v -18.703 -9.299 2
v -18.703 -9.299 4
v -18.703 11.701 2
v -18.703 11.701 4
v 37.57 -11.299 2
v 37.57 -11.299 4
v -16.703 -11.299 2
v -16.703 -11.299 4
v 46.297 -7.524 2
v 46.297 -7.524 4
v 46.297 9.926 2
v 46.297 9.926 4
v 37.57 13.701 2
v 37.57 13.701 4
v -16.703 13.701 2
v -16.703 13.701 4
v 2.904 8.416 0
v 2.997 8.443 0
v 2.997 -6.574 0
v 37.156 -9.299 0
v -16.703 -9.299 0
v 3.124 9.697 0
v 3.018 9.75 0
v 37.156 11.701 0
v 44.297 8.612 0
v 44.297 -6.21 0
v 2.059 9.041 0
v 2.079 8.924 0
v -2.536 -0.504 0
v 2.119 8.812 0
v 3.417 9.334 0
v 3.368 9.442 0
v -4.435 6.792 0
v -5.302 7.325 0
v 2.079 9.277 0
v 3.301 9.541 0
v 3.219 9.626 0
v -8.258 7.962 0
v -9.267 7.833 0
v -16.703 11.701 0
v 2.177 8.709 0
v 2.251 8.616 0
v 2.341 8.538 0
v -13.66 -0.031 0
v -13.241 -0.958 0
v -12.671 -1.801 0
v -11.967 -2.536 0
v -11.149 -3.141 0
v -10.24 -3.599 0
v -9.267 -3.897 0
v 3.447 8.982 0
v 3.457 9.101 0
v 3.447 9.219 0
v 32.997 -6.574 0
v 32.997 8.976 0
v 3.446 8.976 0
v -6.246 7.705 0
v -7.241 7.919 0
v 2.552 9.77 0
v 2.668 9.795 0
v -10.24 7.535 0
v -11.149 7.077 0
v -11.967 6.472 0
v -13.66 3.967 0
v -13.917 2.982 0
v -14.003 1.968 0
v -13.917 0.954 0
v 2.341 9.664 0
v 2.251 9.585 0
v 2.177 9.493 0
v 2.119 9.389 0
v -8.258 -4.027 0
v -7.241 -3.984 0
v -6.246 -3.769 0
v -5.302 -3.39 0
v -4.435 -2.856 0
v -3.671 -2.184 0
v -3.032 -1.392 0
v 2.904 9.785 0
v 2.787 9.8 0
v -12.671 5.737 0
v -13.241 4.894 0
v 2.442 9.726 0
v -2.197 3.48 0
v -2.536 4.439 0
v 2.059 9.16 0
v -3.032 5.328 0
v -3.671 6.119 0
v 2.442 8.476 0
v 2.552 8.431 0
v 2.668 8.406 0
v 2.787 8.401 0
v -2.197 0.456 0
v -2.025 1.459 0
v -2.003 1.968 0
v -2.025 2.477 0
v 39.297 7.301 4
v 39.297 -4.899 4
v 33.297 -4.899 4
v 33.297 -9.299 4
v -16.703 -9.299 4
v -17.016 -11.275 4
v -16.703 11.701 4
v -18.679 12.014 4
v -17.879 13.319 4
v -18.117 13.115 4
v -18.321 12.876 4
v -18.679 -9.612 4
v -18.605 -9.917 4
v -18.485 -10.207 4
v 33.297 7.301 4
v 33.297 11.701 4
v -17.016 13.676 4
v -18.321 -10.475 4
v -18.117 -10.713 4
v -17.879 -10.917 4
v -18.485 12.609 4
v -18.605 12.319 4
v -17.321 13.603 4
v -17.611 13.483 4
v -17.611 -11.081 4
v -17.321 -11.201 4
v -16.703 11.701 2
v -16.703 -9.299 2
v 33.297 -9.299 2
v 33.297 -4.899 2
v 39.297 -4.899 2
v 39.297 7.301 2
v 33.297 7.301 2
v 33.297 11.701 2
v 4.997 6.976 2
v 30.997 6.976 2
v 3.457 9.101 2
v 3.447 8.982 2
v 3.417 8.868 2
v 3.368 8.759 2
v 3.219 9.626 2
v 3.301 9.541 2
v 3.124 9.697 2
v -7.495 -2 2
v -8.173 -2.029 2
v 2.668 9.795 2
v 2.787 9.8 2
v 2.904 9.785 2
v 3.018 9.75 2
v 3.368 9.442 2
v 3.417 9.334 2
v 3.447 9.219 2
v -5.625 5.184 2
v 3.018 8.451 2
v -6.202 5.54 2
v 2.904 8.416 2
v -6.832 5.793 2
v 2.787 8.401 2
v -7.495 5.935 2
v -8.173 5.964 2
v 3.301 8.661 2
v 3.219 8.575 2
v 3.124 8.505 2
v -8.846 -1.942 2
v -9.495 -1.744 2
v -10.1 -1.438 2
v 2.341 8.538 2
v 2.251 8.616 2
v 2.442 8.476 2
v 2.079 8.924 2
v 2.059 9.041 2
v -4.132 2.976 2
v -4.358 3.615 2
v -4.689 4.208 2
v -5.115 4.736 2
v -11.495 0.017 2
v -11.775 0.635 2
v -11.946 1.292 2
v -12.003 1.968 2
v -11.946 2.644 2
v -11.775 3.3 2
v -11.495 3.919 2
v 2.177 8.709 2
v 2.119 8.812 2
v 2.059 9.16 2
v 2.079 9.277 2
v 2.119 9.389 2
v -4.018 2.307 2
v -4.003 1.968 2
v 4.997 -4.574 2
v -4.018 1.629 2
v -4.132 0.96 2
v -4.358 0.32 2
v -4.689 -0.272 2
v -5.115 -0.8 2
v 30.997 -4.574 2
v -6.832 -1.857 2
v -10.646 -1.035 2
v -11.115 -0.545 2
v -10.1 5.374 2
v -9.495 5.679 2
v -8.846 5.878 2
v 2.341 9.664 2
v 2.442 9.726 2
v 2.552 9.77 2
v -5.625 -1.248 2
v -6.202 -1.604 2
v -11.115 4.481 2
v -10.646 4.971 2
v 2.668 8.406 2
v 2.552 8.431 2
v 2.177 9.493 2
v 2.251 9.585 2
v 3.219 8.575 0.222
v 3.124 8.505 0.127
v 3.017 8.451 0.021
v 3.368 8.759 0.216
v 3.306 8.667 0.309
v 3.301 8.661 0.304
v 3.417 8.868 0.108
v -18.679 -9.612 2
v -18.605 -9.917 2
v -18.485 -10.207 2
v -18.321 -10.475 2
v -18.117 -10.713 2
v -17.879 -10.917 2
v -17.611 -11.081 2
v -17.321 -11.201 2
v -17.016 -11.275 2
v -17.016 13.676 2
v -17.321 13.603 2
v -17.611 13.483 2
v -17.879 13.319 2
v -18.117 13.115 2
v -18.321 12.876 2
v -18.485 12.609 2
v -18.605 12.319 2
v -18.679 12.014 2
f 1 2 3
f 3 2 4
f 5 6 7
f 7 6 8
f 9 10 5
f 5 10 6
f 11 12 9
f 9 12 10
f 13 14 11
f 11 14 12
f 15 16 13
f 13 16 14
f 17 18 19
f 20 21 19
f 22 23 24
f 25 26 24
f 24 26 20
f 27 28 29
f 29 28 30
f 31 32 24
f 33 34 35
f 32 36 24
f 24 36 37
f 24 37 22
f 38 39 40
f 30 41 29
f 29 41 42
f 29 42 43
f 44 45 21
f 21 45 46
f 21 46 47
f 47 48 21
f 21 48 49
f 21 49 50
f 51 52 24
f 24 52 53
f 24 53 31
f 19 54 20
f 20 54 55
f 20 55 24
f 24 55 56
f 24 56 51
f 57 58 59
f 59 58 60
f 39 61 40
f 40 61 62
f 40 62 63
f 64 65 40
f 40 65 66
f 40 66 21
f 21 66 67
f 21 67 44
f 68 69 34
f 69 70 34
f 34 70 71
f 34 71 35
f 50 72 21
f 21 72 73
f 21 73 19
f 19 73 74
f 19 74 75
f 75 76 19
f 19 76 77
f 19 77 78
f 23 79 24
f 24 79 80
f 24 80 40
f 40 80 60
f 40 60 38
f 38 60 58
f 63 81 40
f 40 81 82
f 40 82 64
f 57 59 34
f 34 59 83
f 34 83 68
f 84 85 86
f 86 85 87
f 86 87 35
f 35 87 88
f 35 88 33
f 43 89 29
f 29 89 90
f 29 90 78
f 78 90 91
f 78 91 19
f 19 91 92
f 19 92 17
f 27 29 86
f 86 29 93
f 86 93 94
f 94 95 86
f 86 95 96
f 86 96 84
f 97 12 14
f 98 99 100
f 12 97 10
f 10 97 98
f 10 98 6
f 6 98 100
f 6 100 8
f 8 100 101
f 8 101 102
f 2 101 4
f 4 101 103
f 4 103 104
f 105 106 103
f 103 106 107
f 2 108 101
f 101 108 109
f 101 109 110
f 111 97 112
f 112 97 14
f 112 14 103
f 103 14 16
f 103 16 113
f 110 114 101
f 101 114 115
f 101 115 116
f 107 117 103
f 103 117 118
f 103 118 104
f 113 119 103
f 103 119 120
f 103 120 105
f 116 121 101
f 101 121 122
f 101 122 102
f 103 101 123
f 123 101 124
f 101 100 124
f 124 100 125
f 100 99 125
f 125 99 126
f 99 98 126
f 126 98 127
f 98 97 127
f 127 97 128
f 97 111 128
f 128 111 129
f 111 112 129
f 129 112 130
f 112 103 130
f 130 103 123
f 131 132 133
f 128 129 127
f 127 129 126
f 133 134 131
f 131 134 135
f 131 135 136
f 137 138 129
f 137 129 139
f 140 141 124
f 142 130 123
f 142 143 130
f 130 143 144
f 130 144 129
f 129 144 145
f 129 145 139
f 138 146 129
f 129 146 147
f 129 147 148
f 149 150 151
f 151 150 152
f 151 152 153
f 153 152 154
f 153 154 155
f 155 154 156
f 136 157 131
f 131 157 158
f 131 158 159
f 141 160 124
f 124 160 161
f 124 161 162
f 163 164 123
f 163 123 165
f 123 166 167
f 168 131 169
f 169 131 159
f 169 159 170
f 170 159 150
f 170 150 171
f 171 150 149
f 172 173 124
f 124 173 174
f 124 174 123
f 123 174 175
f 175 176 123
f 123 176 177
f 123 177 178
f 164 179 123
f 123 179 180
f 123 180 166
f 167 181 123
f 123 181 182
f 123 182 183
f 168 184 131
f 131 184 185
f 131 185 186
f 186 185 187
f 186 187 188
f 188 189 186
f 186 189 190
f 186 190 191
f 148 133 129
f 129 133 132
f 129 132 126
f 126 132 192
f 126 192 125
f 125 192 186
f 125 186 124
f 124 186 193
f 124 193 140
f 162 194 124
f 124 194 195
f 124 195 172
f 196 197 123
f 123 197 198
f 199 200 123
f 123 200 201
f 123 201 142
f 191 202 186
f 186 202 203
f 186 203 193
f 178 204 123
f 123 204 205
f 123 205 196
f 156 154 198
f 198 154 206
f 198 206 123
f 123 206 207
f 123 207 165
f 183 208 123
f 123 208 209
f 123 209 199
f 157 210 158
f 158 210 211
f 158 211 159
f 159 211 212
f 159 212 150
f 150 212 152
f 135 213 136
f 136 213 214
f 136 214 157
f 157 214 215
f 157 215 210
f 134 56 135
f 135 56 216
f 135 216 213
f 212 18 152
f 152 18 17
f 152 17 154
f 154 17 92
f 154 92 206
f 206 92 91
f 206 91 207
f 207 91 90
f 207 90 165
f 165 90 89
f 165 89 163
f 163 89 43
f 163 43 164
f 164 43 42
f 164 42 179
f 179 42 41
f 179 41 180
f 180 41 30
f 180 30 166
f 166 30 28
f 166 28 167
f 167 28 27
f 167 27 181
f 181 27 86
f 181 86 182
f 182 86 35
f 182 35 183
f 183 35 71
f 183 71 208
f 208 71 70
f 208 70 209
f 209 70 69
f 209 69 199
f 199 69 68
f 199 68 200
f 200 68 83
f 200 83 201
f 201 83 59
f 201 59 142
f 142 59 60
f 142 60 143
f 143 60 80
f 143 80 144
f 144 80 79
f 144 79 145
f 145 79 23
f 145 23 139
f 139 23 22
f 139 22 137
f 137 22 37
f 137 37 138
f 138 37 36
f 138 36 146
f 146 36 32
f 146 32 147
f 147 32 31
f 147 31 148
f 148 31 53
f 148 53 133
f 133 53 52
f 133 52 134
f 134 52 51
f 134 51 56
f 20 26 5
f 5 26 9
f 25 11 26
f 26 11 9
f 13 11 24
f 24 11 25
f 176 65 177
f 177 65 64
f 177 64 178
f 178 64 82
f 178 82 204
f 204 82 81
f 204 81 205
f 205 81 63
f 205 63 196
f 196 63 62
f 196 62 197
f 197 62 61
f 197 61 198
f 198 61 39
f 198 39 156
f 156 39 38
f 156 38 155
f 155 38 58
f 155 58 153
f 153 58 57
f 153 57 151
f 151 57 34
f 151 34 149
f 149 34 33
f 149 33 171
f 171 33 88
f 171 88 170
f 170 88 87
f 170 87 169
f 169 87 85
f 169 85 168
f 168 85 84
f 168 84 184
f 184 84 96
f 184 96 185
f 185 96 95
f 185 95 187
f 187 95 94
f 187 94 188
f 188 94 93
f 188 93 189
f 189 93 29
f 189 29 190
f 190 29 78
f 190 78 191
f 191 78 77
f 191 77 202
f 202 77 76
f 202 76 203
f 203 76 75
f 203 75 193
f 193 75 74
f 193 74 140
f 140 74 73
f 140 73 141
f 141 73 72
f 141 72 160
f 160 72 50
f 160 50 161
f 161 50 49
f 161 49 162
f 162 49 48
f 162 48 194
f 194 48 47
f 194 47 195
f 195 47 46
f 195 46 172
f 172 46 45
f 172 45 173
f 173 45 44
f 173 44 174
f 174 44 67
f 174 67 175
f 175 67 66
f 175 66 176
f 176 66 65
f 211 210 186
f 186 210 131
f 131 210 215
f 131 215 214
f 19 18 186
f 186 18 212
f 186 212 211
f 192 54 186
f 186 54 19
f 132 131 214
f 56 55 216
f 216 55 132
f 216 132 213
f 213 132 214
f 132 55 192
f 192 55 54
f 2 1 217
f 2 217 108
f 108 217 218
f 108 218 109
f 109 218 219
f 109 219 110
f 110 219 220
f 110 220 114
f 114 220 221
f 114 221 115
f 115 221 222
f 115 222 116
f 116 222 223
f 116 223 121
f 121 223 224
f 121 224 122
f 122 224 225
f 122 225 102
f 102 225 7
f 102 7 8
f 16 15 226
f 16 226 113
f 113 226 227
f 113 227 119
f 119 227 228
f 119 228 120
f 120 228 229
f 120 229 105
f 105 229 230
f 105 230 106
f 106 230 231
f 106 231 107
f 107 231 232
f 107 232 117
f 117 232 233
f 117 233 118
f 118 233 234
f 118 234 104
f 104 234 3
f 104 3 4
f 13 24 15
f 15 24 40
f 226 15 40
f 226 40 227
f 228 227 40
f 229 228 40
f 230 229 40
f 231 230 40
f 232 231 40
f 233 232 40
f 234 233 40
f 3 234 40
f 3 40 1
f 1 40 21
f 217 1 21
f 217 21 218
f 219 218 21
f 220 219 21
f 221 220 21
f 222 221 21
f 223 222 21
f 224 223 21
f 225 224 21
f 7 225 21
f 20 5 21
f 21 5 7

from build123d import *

# Parameters (mm, degrees)
EXTRUDE_1_DEPTH     = 2
EXTRUDE_2_DEPTH     = 2
SKETCH_4_R          = 4
SKETCH_4_R_2        = 0.7
SKETCH_4_W          = 26
SKETCH_4_H          = 11.55
CUT_EXTRUDE_1_DEPTH = 49.322997027
CHAMFER_3_SIZE      = 2
FILLET_2_R          = 2
CHAMFER_4_SIZE      = 2


# Some blends are built 0.0001 mm under size
with BuildPart() as part:
    # Эскиз1 → Бобышка-Вытянуть1 (new body)
    with BuildSketch(Plane.XY):
        Polygon((46.296875, 9.92578125), (37.5703125, 13.70078125), (-18.703125, 13.70078125), (-18.703125, -11.29921875), (37.5703125, -11.29921875), (46.296875, -7.52421875), align=None)
    extrude(amount=EXTRUDE_1_DEPTH)

    # Эскиз2 → Бобышка-Вытянуть2 (add)
    with BuildSketch(Plane.XY.offset(2)):
        Polygon((-18.703125, -11.29921875), (37.5703125, -11.29921875), (46.296875, -7.52421875), (46.296875, 9.92578125), (37.5703125, 13.70078125), (-18.703125, 13.70078125), align=None)
        Polygon((-16.703125, 11.70078125), (33.296875, 11.70078125), (33.296875, 7.30078125), (39.296875, 7.30078125), (39.296875, -4.89921875), (33.296875, -4.89921875), (33.296875, -9.29921875), (-16.703125, -9.29921875), align=None, mode=Mode.SUBTRACT)
    extrude(amount=EXTRUDE_2_DEPTH)

    # Эскиз4 → Вырез-Вытянуть1 (cut, through all)
    with BuildSketch(Plane.XY.offset(2)):
        with Locations((-8.003125, 1.96785345)):
            Circle(SKETCH_4_R)
        with Locations((2.756875, 9.10078125)):
            Circle(SKETCH_4_R_2)
        with Locations((17.996875, 1.20078125)):
            Rectangle(SKETCH_4_W, SKETCH_4_H)
    extrude(amount=-CUT_EXTRUDE_1_DEPTH, mode=Mode.SUBTRACT)

    # Фаска3
    # the kernel refuses this chamfer: 2 mm, written as the material it takes off along each edge
    with BuildSketch(Plane(origin=(51.017483297, 7.883706112, 0), x_dir=(0.010916712185249174, 0.025235859914990173, 0.9996219169112968), z_dir=(-0.9178052503070296, 0.3970308835705994, 0))) as chamfer_3_piece_1:
        Polygon((CHAMFER_3_SIZE * 0.999621916911, -CHAMFER_3_SIZE * 0.0274958766106), (-CHAMFER_3_SIZE * 0.0274958766106, -CHAMFER_3_SIZE * 0.999621916911), (0, 0), align=None)
    extrude(amount=19.794808417, mode=Mode.SUBTRACT)
    with BuildSketch(Plane(origin=(46.296875, -12.667584726, 0), x_dir=(0.02749587661058563, 0, 0.9996219169112968), z_dir=(0, 1, 0))) as chamfer_3_piece_2:
        Polygon((CHAMFER_3_SIZE * 0.999621916911, -CHAMFER_3_SIZE * 0.0274958766106), (-CHAMFER_3_SIZE * 0.0274958766106, -CHAMFER_3_SIZE * 0.999621916911), (0, 0), align=None)
    extrude(amount=27.736731952, mode=Mode.SUBTRACT)
    with BuildSketch(Plane(origin=(32.849704203, -13.341293888, 0), x_dir=(-0.3968807729078274, 0.9174582436631658, -0.027495876610586396), z_dir=(0.91780525030703, 0.3970308835705984, 0))) as chamfer_3_piece_3:
        Polygon((CHAMFER_3_SIZE * 0.999621916911, CHAMFER_3_SIZE * 0.0274958766106), (-CHAMFER_3_SIZE * 0.0274958766106, CHAMFER_3_SIZE * 0.999621916911), (0, 0), align=None)
    extrude(amount=19.794808417, mode=Mode.SUBTRACT)
    with BuildSketch(Plane(origin=(-8.003125, 1.96785345, 0), x_dir=(1, 0, 0), z_dir=(0, -1, 0))) as chamfer_3_piece_4:
        Polygon((4 + CHAMFER_3_SIZE, 0), (4, CHAMFER_3_SIZE), (4, 0), align=None)
    revolve(axis=Axis((-8.003125, 1.96785345, 0), (0, 0, 1)), mode=Mode.SUBTRACT)
    with BuildSketch(Plane(origin=(30.996875, 6.97578125, 0), x_dir=(0.9996219169112968, 0, -0.02749587661058632), z_dir=(0, -1, 0)), Plane(origin=(4.996875, -4.57421875, 0), x_dir=(-0.9996219169112968, 0, -0.027495876610586372), z_dir=(0, 1, 0))) as chamfer_3_piece_5:
        Polygon((CHAMFER_3_SIZE * 0.999621916911, CHAMFER_3_SIZE * 0.0274958766106), (-CHAMFER_3_SIZE * 0.0274958766106, CHAMFER_3_SIZE * 0.999621916911), (0, 0), align=None)
    extrude(amount=11.55, mode=Mode.SUBTRACT)
    with BuildSketch(Plane(origin=(30.996875, -4.57421875, 0), x_dir=(0, -0.9996219169112968, -0.027495876610586365), z_dir=(-1, 0, 0)), Plane(origin=(4.996875, 6.97578125, 0), x_dir=(0, 0.9996219169112968, -0.027495876610586348), z_dir=(1, 0, 0))) as chamfer_3_piece_6:
        Polygon((CHAMFER_3_SIZE * 0.999621916911, CHAMFER_3_SIZE * 0.0274958766106), (-CHAMFER_3_SIZE * 0.0274958766106, CHAMFER_3_SIZE * 0.999621916911), (0, 0), align=None)
    extrude(amount=26, mode=Mode.SUBTRACT)
    with BuildSketch(Plane(origin=(30.996875, 12.119147226, 0), x_dir=(0.9996219169112968, 0, -0.02749587661058632), z_dir=(0, -1, 0))) as chamfer_3_piece_7a_section:
        Polygon((CHAMFER_3_SIZE * 0.999621916911, CHAMFER_3_SIZE * 0.0274958766106), (-CHAMFER_3_SIZE * 0.0274958766106, CHAMFER_3_SIZE * 0.999621916911), (0, 0), align=None)
    chamfer_3_piece_7a = extrude(amount=16.693365976, mode=Mode.PRIVATE)
    chamfer_3_piece_7a = split(chamfer_3_piece_7a, bisect_by=Plane(origin=(31.656462254, 6.97578125, 0.659587254), z_dir=(0, 1, 0)), keep=Keep.TOP, mode=Mode.PRIVATE)
    with BuildSketch(Plane(origin=(4.996875, 6.97578125, 0), x_dir=(0, 0.9996219169112968, -0.027495876610586348), z_dir=(1, 0, 0))) as chamfer_3_piece_7b_section:
        Polygon((CHAMFER_3_SIZE * 0.999621916911, CHAMFER_3_SIZE * 0.0274958766106), (-CHAMFER_3_SIZE * 0.0274958766106, CHAMFER_3_SIZE * 0.999621916911), (0, 0), align=None)
    chamfer_3_piece_7b = extrude(amount=31.143365976, mode=Mode.PRIVATE)
    chamfer_3_piece_7b = split(chamfer_3_piece_7b, bisect_by=Plane(origin=(30.996875, 7.635368504, 0.659587254), z_dir=(1, 0, 0)), keep=Keep.TOP, mode=Mode.PRIVATE)
    chamfer_3_piece_7 = chamfer_3_piece_7a & chamfer_3_piece_7b
    add(chamfer_3_piece_7, mode=Mode.SUBTRACT)
    with BuildSketch(Plane(origin=(36.140240976, -4.57421875, 0), x_dir=(0, -0.9996219169112968, -0.027495876610586365), z_dir=(-1, 0, 0))) as chamfer_3_piece_8a_section:
        Polygon((CHAMFER_3_SIZE * 0.999621916911, CHAMFER_3_SIZE * 0.0274958766106), (-CHAMFER_3_SIZE * 0.0274958766106, CHAMFER_3_SIZE * 0.999621916911), (0, 0), align=None)
    chamfer_3_piece_8a = extrude(amount=31.143365976, mode=Mode.PRIVATE)
    chamfer_3_piece_8a = split(chamfer_3_piece_8a, bisect_by=Plane(origin=(30.996875, -5.233806004, 0.659587254), z_dir=(1, 0, 0)), keep=Keep.TOP, mode=Mode.PRIVATE)
    with BuildSketch(Plane(origin=(30.996875, 6.97578125, 0), x_dir=(0.9996219169112968, 0, -0.02749587661058632), z_dir=(0, -1, 0))) as chamfer_3_piece_8b_section:
        Polygon((CHAMFER_3_SIZE * 0.999621916911, CHAMFER_3_SIZE * 0.0274958766106), (-CHAMFER_3_SIZE * 0.0274958766106, CHAMFER_3_SIZE * 0.999621916911), (0, 0), align=None)
    chamfer_3_piece_8b = extrude(amount=16.693365976, mode=Mode.PRIVATE)
    chamfer_3_piece_8b = split(chamfer_3_piece_8b, bisect_by=Plane(origin=(31.656462254, -4.57421875, 0.659587254), z_dir=(0, -1, 0)), keep=Keep.TOP, mode=Mode.PRIVATE)
    chamfer_3_piece_8 = chamfer_3_piece_8a & chamfer_3_piece_8b
    add(chamfer_3_piece_8, mode=Mode.SUBTRACT)
    with BuildSketch(Plane(origin=(4.996875, -9.717584726, 0), x_dir=(-0.9996219169112968, 0, -0.027495876610586355), z_dir=(0, 1, 0))) as chamfer_3_piece_9a_section:
        Polygon((CHAMFER_3_SIZE * 0.999621916911, CHAMFER_3_SIZE * 0.0274958766106), (-CHAMFER_3_SIZE * 0.0274958766106, CHAMFER_3_SIZE * 0.999621916911), (0, 0), align=None)
    chamfer_3_piece_9a = extrude(amount=16.693365976, mode=Mode.PRIVATE)
    chamfer_3_piece_9a = split(chamfer_3_piece_9a, bisect_by=Plane(origin=(4.337287746, -4.57421875, 0.659587254), z_dir=(0, -1, 0)), keep=Keep.TOP, mode=Mode.PRIVATE)
    with BuildSketch(Plane(origin=(30.996875, -4.57421875, 0), x_dir=(0, -0.9996219169112968, -0.027495876610586365), z_dir=(-1, 0, 0))) as chamfer_3_piece_9b_section:
        Polygon((CHAMFER_3_SIZE * 0.999621916911, CHAMFER_3_SIZE * 0.0274958766106), (-CHAMFER_3_SIZE * 0.0274958766106, CHAMFER_3_SIZE * 0.999621916911), (0, 0), align=None)
    chamfer_3_piece_9b = extrude(amount=31.143365976, mode=Mode.PRIVATE)
    chamfer_3_piece_9b = split(chamfer_3_piece_9b, bisect_by=Plane(origin=(4.996875, -5.233806004, 0.659587254), z_dir=(-1, 0, 0)), keep=Keep.TOP, mode=Mode.PRIVATE)
    chamfer_3_piece_9 = chamfer_3_piece_9a & chamfer_3_piece_9b
    add(chamfer_3_piece_9, mode=Mode.SUBTRACT)
    with BuildSketch(Plane(origin=(4.996875, -4.57421875, 0), x_dir=(-0.9996219169112968, 0, -0.027495876610586372), z_dir=(0, 1, 0))) as chamfer_3_piece_10a_section:
        Polygon((CHAMFER_3_SIZE * 0.999621916911, CHAMFER_3_SIZE * 0.0274958766106), (-CHAMFER_3_SIZE * 0.0274958766106, CHAMFER_3_SIZE * 0.999621916911), (0, 0), align=None)
    chamfer_3_piece_10a = extrude(amount=16.693365976, mode=Mode.PRIVATE)
    chamfer_3_piece_10a = split(chamfer_3_piece_10a, bisect_by=Plane(origin=(4.337287746, 6.97578125, 0.659587254), z_dir=(0, 1, 0)), keep=Keep.TOP, mode=Mode.PRIVATE)
    with BuildSketch(Plane(origin=(-0.146490976, 6.97578125, 0), x_dir=(0, 0.9996219169112968, -0.027495876610586348), z_dir=(1, 0, 0))) as chamfer_3_piece_10b_section:
        Polygon((CHAMFER_3_SIZE * 0.999621916911, CHAMFER_3_SIZE * 0.0274958766106), (-CHAMFER_3_SIZE * 0.0274958766106, CHAMFER_3_SIZE * 0.999621916911), (0, 0), align=None)
    chamfer_3_piece_10b = extrude(amount=31.143365976, mode=Mode.PRIVATE)
    chamfer_3_piece_10b = split(chamfer_3_piece_10b, bisect_by=Plane(origin=(4.996875, 7.635368504, 0.659587254), z_dir=(-1, 0, 0)), keep=Keep.TOP, mode=Mode.PRIVATE)
    chamfer_3_piece_10 = chamfer_3_piece_10a & chamfer_3_piece_10b
    add(chamfer_3_piece_10, mode=Mode.SUBTRACT)

    # Скругление2
    fillet_2_edges = [part.edges().sort_by_distance(p)[0] for p in [
        (-18.703125, 13.70078125, 2),
        (-18.703125, -11.29921875, 2),
    ]]
    fillet(fillet_2_edges, radius=FILLET_2_R)

    # Фаска4
    chamfer_4_edges = [part.edges().sort_by_distance(p)[0] for p in [
        (7.914897998, -11.29921875, 0),
        (-18.117338562, -10.713432312, 0),
        (-18.703125, 1.20078125, 0),
        (-18.117338562, 13.114994812, 0),
        (7.914897998, 13.70078125, 0),
    ]]
    chamfer(chamfer_4_edges, length=CHAMFER_4_SIZE - 0.0001)  # a hair under: the kernel refuses the full size


solid = part.part
